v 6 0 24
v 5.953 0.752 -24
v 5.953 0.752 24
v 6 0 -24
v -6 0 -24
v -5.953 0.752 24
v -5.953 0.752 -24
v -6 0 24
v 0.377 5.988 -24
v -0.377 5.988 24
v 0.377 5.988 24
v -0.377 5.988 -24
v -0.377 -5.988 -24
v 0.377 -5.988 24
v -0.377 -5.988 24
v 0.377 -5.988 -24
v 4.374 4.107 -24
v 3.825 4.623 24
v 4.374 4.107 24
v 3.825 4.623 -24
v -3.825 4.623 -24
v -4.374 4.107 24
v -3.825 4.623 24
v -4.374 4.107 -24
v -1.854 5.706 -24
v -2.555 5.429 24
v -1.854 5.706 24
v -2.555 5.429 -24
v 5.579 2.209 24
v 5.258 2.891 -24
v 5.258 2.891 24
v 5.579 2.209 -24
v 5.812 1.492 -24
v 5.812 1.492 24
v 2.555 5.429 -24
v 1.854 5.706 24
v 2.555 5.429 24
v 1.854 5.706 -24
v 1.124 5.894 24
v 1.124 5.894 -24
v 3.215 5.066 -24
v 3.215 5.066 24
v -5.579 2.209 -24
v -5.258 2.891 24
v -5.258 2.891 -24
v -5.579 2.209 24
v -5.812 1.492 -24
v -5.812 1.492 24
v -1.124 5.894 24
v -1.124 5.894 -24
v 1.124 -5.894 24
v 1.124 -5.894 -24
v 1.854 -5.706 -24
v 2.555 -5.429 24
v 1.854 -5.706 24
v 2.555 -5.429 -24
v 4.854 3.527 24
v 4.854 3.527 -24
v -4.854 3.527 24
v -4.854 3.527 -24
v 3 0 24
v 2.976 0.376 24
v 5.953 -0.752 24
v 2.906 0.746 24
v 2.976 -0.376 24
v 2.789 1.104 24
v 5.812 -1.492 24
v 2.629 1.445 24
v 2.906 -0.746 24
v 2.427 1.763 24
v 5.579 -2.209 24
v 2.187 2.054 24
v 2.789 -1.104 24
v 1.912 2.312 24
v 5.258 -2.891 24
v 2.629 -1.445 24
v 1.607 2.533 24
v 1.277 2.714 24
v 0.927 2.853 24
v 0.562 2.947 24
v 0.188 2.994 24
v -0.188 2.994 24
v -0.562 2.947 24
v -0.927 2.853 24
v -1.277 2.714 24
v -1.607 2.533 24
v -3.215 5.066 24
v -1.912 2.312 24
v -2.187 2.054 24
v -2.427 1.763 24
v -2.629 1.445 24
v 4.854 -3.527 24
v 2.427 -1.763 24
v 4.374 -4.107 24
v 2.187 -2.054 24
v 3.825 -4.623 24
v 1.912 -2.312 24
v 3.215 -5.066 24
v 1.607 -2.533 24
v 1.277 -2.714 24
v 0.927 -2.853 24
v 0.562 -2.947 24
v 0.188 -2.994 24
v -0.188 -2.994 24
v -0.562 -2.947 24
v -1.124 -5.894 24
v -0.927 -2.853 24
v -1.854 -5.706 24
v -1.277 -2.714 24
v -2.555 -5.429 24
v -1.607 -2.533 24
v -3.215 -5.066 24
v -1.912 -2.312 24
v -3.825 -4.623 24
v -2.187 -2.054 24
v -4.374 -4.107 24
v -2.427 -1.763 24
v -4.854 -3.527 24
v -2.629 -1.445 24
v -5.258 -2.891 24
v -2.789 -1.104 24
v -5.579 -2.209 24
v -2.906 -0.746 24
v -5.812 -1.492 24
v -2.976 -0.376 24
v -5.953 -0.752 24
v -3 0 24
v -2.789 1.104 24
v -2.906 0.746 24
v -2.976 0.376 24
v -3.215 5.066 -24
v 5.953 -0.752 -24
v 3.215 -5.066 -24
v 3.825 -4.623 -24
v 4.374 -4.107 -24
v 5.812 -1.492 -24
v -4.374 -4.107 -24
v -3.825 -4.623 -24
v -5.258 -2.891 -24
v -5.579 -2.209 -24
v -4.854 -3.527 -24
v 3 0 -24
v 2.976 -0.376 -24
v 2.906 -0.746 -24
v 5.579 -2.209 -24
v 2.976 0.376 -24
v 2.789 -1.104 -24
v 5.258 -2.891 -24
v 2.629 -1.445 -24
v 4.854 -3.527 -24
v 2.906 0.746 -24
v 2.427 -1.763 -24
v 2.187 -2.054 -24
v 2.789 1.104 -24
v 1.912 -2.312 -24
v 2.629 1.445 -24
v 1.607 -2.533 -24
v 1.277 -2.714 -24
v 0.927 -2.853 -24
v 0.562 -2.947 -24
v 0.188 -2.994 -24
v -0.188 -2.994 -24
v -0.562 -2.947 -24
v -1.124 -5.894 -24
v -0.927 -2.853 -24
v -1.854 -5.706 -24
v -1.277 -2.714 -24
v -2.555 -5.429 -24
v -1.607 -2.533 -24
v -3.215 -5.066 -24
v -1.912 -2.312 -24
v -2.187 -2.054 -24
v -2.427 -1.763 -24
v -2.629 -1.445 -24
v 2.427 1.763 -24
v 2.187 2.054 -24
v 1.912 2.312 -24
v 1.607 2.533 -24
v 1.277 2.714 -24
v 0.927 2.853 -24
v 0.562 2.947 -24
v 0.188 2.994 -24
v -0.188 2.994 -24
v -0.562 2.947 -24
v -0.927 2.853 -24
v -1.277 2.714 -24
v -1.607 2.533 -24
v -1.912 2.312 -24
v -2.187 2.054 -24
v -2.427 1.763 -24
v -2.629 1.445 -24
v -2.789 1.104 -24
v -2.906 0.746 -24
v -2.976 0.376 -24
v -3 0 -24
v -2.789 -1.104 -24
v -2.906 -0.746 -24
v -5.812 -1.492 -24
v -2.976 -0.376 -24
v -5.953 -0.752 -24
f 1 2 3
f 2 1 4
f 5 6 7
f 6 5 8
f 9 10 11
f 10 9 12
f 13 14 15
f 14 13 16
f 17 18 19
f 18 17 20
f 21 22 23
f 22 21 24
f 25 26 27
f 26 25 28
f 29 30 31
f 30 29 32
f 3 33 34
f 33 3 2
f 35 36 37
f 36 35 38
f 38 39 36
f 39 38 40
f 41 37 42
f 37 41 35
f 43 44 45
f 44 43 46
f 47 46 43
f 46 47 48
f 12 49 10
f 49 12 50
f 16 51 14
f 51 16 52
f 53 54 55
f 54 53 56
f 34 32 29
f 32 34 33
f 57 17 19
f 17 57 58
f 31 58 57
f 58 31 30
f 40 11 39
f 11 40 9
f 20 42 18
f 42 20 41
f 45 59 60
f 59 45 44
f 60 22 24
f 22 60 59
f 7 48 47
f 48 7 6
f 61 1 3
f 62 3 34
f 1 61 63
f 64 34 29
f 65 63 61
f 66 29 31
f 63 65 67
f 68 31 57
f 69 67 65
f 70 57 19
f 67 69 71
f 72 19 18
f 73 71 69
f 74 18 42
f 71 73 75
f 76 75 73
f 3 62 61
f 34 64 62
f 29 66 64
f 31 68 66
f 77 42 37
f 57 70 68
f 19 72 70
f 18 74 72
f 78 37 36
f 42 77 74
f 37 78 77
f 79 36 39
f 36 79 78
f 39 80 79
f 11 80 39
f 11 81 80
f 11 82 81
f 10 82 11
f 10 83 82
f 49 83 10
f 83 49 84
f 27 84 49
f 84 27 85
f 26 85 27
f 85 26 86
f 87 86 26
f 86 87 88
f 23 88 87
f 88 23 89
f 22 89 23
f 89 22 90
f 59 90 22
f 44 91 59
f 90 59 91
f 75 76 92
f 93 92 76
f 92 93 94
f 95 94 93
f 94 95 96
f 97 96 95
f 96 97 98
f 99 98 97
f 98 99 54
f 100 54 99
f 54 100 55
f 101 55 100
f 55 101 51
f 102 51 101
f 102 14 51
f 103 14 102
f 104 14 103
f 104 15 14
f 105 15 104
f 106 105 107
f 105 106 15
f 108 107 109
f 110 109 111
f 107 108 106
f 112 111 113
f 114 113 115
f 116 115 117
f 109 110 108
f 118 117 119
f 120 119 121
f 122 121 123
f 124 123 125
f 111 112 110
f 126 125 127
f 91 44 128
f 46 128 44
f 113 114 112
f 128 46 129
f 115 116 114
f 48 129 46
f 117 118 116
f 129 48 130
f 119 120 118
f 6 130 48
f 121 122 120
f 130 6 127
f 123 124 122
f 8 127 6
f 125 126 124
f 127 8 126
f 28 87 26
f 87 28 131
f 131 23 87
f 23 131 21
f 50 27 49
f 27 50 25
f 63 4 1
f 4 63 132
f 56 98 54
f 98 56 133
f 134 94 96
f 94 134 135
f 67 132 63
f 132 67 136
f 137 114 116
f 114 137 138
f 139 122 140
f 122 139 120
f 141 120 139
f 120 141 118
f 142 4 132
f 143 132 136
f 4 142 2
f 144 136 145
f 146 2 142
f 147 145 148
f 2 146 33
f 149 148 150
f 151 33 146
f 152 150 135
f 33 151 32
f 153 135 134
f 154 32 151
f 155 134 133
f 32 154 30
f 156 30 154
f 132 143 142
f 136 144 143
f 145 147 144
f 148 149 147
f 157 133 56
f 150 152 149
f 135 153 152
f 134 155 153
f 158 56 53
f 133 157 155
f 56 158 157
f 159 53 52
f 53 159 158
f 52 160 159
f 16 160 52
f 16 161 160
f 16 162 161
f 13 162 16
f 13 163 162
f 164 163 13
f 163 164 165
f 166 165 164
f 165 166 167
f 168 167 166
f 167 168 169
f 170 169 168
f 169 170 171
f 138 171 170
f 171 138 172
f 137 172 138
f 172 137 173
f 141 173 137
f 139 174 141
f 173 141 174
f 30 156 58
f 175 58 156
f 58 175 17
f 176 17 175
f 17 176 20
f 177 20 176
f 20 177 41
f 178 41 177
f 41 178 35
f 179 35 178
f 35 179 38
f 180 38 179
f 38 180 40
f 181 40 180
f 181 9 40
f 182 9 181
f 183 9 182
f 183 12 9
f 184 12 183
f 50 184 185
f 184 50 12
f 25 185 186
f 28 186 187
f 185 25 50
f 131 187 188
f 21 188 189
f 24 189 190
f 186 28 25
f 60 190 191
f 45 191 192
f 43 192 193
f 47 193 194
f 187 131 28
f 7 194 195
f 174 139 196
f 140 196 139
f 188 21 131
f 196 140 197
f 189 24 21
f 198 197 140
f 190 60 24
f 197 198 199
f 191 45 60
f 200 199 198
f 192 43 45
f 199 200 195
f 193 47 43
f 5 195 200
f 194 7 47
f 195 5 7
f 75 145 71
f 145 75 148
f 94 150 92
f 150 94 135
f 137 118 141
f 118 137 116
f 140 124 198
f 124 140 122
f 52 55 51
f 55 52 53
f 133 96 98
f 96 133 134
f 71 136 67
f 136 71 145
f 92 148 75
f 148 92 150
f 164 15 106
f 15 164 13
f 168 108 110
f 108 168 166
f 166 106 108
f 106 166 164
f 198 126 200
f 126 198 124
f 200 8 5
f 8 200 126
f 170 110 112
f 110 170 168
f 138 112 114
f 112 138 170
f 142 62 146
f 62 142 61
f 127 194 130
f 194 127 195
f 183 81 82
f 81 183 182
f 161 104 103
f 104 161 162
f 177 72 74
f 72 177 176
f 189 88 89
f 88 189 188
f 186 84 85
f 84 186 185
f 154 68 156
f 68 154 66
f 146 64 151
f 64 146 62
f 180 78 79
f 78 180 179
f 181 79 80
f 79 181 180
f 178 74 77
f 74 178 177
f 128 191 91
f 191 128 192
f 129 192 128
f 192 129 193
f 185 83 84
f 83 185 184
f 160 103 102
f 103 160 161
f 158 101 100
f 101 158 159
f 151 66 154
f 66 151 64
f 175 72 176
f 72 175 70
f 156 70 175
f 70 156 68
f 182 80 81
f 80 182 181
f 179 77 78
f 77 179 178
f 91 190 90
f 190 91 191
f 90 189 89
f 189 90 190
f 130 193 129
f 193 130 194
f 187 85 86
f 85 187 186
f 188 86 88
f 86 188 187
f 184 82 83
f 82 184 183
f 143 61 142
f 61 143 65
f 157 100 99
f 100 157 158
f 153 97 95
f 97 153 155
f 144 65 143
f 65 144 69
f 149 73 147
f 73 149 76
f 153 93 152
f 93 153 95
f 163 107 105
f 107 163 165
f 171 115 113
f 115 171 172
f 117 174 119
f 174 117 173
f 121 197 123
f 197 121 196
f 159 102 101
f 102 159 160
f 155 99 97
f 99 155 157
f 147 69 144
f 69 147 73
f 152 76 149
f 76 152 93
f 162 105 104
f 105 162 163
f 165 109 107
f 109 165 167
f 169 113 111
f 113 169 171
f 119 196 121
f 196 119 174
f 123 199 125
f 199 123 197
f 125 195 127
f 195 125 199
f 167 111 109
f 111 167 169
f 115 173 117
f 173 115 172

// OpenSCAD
$fn = 50;


difference() {
	union() {
		translate(v = [0, 0, -24.0000000000]) {
			cylinder(h = 48, r = 6.0000000000);
		}
	}
	union() {
		translate(v = [0, 0, -100.0000000000]) {
			cylinder(h = 200, r = 3);
		}
	}
}
